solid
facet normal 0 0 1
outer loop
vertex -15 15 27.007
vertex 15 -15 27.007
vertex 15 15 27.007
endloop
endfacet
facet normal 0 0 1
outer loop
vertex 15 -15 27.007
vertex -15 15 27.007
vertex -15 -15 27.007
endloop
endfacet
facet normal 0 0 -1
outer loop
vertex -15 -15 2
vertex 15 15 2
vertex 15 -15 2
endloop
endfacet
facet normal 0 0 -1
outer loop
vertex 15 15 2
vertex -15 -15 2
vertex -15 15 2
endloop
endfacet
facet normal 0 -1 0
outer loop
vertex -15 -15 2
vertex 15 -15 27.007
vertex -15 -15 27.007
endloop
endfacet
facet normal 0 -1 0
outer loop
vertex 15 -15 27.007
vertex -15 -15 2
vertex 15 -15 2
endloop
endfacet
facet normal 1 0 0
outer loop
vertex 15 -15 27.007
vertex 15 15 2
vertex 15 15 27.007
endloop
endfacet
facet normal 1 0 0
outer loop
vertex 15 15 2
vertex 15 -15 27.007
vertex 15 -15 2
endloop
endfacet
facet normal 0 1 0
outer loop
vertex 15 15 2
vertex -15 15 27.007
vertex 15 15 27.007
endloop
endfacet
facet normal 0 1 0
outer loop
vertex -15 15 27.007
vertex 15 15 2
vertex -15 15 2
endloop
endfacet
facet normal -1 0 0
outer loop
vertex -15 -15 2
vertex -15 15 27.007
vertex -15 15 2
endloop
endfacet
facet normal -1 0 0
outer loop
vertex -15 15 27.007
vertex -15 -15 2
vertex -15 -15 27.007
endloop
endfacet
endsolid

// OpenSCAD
translate([-15, -15, 2]) cube(size = [30, 30, 25.00666419935816], center = false);
